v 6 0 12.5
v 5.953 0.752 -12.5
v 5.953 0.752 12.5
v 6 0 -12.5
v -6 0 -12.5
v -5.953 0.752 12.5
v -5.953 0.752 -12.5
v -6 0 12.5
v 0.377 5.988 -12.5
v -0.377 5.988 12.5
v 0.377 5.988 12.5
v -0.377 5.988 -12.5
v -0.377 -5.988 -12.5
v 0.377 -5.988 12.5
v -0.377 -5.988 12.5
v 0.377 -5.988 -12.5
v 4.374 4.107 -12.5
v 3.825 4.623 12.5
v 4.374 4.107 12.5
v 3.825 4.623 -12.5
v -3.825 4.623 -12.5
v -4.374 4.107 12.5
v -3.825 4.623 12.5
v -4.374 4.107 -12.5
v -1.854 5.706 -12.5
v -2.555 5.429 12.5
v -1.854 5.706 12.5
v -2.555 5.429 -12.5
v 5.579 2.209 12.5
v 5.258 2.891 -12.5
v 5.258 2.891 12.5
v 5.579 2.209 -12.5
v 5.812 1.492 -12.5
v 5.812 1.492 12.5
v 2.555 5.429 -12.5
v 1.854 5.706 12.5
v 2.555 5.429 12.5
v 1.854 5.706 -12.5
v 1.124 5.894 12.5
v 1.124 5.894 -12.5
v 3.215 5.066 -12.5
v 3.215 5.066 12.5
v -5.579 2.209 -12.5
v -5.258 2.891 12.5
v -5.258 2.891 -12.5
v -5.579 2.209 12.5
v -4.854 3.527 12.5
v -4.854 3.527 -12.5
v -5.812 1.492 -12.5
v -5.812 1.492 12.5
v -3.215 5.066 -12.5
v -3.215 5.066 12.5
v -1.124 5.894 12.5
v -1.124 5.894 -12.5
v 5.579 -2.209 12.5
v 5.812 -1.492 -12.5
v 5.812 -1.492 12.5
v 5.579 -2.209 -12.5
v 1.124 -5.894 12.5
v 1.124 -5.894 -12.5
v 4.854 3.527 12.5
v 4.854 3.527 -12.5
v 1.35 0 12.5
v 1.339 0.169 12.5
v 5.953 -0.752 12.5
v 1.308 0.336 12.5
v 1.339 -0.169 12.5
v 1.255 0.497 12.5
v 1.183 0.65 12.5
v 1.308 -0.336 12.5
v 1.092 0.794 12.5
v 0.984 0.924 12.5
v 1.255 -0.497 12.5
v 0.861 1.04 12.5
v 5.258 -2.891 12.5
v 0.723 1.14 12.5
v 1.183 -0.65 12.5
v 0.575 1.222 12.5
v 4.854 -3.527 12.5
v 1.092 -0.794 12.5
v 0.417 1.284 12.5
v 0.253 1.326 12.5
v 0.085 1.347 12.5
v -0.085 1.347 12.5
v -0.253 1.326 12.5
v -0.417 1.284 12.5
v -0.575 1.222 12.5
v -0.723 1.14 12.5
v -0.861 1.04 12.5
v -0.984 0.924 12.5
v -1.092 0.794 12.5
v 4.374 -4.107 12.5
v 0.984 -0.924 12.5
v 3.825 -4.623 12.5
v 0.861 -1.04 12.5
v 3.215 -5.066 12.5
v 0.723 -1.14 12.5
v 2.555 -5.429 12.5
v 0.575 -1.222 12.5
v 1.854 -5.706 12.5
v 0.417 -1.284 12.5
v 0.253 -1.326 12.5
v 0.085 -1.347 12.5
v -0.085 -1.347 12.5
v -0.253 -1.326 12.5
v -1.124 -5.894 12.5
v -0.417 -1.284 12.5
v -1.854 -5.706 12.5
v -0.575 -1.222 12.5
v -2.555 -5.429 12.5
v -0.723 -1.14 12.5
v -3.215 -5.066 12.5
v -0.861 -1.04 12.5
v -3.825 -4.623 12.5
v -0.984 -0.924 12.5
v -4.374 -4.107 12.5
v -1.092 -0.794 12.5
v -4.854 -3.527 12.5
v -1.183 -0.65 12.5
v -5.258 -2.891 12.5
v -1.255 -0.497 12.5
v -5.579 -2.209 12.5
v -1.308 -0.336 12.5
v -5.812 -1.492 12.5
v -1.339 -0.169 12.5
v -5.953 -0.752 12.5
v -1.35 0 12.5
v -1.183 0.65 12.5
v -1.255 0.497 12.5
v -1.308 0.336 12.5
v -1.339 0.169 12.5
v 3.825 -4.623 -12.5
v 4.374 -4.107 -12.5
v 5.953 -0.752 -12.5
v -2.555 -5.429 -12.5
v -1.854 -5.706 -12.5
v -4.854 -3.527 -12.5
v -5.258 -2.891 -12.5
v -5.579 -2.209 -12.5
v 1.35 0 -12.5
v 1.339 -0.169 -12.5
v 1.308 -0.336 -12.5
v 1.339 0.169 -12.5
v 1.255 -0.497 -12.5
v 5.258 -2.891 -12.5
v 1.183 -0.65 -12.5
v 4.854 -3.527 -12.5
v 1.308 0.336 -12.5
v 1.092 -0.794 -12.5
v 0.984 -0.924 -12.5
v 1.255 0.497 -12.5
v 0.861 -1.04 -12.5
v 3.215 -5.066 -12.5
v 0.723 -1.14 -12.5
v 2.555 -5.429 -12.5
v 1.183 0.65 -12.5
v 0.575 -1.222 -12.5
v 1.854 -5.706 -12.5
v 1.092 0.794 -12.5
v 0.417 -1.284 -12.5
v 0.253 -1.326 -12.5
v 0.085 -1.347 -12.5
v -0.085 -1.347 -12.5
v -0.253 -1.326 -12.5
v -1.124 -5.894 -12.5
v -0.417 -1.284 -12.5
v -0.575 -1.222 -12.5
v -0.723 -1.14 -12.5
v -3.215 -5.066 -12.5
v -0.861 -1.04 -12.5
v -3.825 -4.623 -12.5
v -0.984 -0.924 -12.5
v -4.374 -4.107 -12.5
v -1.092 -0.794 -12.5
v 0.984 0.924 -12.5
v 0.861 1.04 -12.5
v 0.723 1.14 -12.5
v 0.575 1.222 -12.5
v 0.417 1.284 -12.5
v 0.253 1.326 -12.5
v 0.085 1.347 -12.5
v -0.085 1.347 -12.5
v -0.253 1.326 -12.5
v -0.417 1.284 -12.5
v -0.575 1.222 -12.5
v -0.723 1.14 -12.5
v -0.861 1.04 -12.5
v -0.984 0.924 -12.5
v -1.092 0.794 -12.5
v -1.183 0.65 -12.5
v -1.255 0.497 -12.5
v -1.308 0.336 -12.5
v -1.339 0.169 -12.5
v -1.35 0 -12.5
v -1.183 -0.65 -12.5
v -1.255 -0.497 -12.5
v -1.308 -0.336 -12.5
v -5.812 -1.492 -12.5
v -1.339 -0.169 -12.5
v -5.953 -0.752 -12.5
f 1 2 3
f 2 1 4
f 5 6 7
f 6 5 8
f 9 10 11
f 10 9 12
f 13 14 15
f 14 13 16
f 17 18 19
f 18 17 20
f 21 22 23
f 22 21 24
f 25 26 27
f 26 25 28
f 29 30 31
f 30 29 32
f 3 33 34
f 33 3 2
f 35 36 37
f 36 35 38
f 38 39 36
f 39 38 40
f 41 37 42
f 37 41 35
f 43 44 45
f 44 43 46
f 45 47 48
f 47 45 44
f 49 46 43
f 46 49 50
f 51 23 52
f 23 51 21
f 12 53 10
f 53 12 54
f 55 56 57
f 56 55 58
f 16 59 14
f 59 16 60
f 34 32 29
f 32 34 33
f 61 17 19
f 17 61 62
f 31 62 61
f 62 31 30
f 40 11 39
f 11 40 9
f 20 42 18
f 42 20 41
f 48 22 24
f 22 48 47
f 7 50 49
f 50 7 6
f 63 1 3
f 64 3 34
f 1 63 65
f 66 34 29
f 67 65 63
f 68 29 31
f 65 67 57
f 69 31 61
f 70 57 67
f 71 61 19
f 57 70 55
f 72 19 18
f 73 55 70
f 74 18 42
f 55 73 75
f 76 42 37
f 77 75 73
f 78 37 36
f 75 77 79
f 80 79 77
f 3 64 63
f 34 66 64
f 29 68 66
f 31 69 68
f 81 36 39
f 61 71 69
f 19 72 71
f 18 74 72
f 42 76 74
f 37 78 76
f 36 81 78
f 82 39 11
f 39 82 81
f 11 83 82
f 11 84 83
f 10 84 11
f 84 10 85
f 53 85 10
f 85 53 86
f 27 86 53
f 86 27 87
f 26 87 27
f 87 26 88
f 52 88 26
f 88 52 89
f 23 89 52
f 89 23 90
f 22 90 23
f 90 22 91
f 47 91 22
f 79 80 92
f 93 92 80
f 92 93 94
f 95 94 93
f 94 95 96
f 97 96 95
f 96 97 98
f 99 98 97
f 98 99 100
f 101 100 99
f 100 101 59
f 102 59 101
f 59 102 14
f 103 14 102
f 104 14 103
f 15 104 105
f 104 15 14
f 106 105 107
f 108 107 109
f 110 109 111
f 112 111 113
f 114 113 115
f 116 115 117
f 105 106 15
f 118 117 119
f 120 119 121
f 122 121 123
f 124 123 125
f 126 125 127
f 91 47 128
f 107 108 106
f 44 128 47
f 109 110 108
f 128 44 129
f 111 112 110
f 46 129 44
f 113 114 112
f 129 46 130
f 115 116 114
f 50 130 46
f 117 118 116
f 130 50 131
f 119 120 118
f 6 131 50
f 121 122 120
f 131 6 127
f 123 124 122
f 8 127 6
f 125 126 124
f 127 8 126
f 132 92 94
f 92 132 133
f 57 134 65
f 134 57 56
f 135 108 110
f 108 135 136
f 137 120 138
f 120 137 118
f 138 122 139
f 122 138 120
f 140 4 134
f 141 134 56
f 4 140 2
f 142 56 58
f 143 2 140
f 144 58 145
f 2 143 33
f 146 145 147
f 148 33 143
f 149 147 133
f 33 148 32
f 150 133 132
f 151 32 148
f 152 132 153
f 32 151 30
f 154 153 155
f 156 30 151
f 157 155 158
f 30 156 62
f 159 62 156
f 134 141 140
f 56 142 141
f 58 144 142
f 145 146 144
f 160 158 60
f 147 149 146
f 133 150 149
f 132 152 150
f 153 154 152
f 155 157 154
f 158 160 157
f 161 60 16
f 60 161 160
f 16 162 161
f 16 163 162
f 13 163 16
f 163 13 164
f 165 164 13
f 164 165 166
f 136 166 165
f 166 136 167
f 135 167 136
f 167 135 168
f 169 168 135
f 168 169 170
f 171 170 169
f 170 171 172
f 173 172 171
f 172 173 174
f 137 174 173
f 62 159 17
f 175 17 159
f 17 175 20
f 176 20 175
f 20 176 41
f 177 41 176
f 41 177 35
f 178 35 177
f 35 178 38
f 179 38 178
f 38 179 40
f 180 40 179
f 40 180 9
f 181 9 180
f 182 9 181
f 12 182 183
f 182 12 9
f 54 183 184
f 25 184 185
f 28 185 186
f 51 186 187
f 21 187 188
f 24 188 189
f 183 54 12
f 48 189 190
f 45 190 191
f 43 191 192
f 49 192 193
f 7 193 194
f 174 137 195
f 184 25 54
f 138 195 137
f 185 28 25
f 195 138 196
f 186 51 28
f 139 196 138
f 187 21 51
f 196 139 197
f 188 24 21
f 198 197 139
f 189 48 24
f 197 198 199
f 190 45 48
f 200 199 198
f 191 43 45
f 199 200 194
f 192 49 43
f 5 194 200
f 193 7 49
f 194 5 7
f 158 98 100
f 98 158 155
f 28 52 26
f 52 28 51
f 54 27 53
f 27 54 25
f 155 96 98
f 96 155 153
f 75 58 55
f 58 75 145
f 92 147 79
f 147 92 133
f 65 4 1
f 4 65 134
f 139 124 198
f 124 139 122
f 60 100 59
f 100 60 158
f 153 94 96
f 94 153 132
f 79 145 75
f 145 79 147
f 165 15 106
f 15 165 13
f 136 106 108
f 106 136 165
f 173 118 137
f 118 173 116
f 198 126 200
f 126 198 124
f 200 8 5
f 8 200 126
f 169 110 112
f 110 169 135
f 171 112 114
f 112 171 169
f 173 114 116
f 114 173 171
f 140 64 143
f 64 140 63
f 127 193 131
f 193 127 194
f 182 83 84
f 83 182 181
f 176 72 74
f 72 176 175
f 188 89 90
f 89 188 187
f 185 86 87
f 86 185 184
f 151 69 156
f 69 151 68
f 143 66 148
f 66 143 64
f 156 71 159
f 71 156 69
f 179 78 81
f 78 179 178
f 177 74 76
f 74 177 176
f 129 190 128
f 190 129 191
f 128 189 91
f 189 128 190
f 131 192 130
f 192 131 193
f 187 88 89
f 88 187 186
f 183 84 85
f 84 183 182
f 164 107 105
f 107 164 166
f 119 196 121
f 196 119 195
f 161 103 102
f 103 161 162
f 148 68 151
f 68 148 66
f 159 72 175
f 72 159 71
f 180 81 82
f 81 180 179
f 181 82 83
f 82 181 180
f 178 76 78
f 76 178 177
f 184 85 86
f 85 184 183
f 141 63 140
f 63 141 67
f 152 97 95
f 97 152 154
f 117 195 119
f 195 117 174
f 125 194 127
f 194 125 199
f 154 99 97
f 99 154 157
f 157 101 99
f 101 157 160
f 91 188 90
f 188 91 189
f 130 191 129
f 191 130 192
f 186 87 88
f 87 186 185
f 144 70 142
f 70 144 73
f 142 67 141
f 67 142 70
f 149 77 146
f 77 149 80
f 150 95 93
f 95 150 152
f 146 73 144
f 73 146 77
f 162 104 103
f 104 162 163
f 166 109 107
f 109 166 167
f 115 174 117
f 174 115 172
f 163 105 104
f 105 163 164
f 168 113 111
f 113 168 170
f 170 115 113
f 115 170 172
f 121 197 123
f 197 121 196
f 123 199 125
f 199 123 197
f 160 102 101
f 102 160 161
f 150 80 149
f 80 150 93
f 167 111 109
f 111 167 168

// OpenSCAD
$fn = 50;


difference() {
	union() {
		translate(v = [0, 0, -12.5000000000]) {
			cylinder(h = 25, r = 6.0000000000);
		}
	}
	union() {
		translate(v = [0, 0, -100.0000000000]) {
			cylinder(h = 200, r = 1.3500000000);
		}
	}
}
